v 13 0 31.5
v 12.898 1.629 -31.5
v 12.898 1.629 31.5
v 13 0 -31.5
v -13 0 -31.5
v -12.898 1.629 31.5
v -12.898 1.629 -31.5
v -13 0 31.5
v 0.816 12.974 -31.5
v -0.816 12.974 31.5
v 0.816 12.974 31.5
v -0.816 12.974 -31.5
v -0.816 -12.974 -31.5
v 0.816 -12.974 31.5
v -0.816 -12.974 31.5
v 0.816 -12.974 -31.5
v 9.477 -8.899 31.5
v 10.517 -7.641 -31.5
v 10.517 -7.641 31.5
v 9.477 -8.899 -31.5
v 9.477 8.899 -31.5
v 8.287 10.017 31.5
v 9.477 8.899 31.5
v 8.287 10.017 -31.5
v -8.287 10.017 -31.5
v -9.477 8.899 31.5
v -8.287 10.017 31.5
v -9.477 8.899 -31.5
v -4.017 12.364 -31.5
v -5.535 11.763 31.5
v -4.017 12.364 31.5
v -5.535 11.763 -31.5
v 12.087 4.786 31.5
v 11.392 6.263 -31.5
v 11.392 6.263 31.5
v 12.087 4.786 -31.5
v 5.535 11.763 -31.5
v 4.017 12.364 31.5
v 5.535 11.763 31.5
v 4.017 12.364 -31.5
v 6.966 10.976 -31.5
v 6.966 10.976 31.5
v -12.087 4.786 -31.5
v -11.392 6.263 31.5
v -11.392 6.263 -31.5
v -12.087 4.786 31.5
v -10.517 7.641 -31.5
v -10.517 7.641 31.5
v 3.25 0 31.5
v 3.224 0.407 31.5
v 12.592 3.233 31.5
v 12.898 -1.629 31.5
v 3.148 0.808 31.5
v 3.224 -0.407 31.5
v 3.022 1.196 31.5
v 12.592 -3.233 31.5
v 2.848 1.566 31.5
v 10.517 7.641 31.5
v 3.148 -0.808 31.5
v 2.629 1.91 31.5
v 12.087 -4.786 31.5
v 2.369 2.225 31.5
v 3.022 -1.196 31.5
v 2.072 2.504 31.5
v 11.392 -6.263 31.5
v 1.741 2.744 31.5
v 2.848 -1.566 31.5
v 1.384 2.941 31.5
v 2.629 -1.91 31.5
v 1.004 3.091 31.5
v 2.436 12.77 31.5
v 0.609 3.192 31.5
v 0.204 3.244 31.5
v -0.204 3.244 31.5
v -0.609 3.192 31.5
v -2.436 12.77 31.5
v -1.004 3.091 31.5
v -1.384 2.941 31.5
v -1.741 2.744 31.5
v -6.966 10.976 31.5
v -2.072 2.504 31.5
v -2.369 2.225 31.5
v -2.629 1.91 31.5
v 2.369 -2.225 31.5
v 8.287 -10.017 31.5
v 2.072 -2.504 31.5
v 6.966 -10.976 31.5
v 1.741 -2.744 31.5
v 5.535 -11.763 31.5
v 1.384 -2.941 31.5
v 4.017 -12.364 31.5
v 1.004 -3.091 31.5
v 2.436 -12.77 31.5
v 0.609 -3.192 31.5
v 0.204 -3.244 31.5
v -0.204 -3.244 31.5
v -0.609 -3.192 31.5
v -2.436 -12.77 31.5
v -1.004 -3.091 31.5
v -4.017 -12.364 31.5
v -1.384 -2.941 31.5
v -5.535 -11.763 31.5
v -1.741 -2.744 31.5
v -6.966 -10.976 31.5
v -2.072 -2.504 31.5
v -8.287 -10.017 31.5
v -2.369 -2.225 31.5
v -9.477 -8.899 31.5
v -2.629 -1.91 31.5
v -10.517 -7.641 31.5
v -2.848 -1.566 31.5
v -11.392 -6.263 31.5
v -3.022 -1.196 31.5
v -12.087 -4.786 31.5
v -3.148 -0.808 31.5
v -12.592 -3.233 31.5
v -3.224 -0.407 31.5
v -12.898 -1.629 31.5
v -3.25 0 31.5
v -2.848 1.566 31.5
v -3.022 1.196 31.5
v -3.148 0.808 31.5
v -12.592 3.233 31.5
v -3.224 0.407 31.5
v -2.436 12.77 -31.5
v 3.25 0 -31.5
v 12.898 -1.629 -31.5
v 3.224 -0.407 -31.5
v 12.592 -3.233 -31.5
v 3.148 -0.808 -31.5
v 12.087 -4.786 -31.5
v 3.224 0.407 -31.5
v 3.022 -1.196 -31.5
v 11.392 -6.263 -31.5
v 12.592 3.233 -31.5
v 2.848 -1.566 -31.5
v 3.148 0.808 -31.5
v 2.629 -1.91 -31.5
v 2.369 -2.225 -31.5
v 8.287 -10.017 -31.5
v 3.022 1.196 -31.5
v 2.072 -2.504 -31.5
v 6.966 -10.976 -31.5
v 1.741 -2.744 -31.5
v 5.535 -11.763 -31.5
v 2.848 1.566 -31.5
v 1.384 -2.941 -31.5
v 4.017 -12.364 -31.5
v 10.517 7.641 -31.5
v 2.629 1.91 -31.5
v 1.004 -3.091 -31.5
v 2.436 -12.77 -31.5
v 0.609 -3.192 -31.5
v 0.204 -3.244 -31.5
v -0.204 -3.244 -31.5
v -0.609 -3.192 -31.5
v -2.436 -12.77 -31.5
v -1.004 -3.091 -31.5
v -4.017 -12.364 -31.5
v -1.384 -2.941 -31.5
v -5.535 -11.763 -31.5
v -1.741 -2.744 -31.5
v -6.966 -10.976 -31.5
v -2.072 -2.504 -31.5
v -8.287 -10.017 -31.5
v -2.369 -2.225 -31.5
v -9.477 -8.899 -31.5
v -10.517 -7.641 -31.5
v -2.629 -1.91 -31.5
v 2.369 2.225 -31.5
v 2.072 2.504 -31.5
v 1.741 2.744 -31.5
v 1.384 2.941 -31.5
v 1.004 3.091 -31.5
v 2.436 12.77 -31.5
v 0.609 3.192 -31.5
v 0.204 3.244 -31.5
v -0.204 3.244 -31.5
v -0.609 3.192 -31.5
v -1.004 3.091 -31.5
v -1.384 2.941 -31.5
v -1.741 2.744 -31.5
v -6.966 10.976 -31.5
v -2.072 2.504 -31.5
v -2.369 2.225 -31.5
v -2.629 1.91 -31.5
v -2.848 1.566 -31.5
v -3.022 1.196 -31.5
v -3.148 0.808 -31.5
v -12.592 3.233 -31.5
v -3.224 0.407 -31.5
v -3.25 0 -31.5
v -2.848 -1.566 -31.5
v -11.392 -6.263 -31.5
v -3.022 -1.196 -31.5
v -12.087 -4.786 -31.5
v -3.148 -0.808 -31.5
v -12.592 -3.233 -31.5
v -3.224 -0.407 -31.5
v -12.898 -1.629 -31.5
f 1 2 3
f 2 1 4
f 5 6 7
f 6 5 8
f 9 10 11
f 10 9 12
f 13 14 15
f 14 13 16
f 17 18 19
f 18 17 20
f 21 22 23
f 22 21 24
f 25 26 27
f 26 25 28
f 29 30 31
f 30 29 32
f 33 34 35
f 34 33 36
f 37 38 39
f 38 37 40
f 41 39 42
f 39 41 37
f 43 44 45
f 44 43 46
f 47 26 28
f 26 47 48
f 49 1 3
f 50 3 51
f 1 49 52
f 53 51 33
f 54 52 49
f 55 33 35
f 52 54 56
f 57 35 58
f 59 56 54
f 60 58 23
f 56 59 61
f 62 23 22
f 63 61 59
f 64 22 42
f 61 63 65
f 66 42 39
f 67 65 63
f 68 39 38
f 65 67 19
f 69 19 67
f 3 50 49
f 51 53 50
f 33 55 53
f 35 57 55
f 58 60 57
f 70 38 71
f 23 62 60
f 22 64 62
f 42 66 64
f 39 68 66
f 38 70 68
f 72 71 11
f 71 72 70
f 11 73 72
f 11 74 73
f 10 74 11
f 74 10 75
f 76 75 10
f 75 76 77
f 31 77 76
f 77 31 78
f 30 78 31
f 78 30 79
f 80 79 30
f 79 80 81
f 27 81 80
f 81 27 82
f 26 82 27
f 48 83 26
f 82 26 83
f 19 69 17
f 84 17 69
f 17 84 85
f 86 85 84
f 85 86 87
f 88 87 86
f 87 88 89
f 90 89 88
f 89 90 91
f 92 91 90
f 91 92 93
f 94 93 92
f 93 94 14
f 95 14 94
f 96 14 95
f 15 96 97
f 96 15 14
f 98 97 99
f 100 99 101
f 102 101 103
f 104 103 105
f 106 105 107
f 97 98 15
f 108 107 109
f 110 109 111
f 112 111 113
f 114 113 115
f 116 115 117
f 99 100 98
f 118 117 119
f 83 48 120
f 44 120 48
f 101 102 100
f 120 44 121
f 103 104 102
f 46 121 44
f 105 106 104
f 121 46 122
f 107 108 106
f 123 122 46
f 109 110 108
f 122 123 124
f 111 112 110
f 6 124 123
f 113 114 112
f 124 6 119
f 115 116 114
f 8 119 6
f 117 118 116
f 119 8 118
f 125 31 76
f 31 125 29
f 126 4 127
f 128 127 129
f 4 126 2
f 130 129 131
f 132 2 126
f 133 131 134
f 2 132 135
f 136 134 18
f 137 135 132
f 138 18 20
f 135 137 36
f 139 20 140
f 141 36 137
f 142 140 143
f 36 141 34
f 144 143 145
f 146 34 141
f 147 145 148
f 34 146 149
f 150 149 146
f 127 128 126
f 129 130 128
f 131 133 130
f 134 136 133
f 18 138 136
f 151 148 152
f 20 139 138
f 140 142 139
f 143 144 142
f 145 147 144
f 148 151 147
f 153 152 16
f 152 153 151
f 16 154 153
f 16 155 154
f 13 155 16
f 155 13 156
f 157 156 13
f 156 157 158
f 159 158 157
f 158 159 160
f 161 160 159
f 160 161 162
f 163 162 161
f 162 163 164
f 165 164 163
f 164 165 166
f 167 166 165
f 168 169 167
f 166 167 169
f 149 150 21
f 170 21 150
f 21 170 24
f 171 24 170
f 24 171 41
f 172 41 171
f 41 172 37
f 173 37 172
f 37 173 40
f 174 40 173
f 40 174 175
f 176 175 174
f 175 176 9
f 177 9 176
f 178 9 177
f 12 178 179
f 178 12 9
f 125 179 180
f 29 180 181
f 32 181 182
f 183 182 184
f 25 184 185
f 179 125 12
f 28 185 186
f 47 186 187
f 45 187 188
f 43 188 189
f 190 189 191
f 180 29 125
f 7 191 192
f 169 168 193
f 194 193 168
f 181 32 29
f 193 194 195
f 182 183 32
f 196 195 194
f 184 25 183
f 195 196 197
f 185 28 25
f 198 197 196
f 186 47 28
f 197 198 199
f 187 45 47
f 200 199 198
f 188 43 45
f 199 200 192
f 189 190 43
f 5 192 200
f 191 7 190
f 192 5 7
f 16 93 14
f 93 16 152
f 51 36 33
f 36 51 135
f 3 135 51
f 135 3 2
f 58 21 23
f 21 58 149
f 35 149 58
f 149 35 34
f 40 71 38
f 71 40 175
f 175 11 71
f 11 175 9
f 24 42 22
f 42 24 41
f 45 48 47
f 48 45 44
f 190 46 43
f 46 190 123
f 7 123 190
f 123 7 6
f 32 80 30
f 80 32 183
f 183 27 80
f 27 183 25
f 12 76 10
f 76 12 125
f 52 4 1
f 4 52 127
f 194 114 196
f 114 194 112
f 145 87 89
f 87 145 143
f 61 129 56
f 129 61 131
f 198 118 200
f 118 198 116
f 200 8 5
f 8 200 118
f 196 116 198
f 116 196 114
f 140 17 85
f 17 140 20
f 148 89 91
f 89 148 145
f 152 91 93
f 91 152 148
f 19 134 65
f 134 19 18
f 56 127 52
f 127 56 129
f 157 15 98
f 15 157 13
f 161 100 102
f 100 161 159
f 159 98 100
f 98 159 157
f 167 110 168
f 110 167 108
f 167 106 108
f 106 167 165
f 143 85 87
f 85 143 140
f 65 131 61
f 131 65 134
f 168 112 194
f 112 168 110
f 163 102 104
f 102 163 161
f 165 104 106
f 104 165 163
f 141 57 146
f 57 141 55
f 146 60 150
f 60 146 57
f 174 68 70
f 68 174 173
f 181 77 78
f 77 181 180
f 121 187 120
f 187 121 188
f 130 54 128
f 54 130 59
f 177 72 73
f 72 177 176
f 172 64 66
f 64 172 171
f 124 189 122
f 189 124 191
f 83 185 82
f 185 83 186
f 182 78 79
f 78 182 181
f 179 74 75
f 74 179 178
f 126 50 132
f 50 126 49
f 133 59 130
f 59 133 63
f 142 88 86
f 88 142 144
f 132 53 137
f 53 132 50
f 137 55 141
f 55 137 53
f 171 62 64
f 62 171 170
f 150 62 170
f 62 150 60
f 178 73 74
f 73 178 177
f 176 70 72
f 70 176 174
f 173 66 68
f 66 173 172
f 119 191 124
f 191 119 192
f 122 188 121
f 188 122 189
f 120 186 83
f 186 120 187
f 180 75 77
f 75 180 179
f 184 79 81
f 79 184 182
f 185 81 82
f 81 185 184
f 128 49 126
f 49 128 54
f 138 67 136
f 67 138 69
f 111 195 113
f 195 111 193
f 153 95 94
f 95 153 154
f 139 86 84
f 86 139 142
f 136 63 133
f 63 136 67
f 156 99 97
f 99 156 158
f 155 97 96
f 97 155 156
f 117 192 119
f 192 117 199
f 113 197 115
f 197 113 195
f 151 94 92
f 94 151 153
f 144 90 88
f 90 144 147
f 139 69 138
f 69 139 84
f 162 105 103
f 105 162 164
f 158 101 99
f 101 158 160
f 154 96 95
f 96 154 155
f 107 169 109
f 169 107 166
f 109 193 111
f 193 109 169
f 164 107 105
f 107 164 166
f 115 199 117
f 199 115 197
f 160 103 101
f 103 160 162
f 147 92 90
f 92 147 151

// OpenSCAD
$fn = 50;


difference() {
	union() {
		translate(v = [0, 0, -31.5000000000]) {
			cylinder(h = 63, r = 13.0000000000);
		}
	}
	union() {
		translate(v = [0, 0, -100.0000000000]) {
			cylinder(h = 200, r = 3.2500000000);
		}
	}
}
